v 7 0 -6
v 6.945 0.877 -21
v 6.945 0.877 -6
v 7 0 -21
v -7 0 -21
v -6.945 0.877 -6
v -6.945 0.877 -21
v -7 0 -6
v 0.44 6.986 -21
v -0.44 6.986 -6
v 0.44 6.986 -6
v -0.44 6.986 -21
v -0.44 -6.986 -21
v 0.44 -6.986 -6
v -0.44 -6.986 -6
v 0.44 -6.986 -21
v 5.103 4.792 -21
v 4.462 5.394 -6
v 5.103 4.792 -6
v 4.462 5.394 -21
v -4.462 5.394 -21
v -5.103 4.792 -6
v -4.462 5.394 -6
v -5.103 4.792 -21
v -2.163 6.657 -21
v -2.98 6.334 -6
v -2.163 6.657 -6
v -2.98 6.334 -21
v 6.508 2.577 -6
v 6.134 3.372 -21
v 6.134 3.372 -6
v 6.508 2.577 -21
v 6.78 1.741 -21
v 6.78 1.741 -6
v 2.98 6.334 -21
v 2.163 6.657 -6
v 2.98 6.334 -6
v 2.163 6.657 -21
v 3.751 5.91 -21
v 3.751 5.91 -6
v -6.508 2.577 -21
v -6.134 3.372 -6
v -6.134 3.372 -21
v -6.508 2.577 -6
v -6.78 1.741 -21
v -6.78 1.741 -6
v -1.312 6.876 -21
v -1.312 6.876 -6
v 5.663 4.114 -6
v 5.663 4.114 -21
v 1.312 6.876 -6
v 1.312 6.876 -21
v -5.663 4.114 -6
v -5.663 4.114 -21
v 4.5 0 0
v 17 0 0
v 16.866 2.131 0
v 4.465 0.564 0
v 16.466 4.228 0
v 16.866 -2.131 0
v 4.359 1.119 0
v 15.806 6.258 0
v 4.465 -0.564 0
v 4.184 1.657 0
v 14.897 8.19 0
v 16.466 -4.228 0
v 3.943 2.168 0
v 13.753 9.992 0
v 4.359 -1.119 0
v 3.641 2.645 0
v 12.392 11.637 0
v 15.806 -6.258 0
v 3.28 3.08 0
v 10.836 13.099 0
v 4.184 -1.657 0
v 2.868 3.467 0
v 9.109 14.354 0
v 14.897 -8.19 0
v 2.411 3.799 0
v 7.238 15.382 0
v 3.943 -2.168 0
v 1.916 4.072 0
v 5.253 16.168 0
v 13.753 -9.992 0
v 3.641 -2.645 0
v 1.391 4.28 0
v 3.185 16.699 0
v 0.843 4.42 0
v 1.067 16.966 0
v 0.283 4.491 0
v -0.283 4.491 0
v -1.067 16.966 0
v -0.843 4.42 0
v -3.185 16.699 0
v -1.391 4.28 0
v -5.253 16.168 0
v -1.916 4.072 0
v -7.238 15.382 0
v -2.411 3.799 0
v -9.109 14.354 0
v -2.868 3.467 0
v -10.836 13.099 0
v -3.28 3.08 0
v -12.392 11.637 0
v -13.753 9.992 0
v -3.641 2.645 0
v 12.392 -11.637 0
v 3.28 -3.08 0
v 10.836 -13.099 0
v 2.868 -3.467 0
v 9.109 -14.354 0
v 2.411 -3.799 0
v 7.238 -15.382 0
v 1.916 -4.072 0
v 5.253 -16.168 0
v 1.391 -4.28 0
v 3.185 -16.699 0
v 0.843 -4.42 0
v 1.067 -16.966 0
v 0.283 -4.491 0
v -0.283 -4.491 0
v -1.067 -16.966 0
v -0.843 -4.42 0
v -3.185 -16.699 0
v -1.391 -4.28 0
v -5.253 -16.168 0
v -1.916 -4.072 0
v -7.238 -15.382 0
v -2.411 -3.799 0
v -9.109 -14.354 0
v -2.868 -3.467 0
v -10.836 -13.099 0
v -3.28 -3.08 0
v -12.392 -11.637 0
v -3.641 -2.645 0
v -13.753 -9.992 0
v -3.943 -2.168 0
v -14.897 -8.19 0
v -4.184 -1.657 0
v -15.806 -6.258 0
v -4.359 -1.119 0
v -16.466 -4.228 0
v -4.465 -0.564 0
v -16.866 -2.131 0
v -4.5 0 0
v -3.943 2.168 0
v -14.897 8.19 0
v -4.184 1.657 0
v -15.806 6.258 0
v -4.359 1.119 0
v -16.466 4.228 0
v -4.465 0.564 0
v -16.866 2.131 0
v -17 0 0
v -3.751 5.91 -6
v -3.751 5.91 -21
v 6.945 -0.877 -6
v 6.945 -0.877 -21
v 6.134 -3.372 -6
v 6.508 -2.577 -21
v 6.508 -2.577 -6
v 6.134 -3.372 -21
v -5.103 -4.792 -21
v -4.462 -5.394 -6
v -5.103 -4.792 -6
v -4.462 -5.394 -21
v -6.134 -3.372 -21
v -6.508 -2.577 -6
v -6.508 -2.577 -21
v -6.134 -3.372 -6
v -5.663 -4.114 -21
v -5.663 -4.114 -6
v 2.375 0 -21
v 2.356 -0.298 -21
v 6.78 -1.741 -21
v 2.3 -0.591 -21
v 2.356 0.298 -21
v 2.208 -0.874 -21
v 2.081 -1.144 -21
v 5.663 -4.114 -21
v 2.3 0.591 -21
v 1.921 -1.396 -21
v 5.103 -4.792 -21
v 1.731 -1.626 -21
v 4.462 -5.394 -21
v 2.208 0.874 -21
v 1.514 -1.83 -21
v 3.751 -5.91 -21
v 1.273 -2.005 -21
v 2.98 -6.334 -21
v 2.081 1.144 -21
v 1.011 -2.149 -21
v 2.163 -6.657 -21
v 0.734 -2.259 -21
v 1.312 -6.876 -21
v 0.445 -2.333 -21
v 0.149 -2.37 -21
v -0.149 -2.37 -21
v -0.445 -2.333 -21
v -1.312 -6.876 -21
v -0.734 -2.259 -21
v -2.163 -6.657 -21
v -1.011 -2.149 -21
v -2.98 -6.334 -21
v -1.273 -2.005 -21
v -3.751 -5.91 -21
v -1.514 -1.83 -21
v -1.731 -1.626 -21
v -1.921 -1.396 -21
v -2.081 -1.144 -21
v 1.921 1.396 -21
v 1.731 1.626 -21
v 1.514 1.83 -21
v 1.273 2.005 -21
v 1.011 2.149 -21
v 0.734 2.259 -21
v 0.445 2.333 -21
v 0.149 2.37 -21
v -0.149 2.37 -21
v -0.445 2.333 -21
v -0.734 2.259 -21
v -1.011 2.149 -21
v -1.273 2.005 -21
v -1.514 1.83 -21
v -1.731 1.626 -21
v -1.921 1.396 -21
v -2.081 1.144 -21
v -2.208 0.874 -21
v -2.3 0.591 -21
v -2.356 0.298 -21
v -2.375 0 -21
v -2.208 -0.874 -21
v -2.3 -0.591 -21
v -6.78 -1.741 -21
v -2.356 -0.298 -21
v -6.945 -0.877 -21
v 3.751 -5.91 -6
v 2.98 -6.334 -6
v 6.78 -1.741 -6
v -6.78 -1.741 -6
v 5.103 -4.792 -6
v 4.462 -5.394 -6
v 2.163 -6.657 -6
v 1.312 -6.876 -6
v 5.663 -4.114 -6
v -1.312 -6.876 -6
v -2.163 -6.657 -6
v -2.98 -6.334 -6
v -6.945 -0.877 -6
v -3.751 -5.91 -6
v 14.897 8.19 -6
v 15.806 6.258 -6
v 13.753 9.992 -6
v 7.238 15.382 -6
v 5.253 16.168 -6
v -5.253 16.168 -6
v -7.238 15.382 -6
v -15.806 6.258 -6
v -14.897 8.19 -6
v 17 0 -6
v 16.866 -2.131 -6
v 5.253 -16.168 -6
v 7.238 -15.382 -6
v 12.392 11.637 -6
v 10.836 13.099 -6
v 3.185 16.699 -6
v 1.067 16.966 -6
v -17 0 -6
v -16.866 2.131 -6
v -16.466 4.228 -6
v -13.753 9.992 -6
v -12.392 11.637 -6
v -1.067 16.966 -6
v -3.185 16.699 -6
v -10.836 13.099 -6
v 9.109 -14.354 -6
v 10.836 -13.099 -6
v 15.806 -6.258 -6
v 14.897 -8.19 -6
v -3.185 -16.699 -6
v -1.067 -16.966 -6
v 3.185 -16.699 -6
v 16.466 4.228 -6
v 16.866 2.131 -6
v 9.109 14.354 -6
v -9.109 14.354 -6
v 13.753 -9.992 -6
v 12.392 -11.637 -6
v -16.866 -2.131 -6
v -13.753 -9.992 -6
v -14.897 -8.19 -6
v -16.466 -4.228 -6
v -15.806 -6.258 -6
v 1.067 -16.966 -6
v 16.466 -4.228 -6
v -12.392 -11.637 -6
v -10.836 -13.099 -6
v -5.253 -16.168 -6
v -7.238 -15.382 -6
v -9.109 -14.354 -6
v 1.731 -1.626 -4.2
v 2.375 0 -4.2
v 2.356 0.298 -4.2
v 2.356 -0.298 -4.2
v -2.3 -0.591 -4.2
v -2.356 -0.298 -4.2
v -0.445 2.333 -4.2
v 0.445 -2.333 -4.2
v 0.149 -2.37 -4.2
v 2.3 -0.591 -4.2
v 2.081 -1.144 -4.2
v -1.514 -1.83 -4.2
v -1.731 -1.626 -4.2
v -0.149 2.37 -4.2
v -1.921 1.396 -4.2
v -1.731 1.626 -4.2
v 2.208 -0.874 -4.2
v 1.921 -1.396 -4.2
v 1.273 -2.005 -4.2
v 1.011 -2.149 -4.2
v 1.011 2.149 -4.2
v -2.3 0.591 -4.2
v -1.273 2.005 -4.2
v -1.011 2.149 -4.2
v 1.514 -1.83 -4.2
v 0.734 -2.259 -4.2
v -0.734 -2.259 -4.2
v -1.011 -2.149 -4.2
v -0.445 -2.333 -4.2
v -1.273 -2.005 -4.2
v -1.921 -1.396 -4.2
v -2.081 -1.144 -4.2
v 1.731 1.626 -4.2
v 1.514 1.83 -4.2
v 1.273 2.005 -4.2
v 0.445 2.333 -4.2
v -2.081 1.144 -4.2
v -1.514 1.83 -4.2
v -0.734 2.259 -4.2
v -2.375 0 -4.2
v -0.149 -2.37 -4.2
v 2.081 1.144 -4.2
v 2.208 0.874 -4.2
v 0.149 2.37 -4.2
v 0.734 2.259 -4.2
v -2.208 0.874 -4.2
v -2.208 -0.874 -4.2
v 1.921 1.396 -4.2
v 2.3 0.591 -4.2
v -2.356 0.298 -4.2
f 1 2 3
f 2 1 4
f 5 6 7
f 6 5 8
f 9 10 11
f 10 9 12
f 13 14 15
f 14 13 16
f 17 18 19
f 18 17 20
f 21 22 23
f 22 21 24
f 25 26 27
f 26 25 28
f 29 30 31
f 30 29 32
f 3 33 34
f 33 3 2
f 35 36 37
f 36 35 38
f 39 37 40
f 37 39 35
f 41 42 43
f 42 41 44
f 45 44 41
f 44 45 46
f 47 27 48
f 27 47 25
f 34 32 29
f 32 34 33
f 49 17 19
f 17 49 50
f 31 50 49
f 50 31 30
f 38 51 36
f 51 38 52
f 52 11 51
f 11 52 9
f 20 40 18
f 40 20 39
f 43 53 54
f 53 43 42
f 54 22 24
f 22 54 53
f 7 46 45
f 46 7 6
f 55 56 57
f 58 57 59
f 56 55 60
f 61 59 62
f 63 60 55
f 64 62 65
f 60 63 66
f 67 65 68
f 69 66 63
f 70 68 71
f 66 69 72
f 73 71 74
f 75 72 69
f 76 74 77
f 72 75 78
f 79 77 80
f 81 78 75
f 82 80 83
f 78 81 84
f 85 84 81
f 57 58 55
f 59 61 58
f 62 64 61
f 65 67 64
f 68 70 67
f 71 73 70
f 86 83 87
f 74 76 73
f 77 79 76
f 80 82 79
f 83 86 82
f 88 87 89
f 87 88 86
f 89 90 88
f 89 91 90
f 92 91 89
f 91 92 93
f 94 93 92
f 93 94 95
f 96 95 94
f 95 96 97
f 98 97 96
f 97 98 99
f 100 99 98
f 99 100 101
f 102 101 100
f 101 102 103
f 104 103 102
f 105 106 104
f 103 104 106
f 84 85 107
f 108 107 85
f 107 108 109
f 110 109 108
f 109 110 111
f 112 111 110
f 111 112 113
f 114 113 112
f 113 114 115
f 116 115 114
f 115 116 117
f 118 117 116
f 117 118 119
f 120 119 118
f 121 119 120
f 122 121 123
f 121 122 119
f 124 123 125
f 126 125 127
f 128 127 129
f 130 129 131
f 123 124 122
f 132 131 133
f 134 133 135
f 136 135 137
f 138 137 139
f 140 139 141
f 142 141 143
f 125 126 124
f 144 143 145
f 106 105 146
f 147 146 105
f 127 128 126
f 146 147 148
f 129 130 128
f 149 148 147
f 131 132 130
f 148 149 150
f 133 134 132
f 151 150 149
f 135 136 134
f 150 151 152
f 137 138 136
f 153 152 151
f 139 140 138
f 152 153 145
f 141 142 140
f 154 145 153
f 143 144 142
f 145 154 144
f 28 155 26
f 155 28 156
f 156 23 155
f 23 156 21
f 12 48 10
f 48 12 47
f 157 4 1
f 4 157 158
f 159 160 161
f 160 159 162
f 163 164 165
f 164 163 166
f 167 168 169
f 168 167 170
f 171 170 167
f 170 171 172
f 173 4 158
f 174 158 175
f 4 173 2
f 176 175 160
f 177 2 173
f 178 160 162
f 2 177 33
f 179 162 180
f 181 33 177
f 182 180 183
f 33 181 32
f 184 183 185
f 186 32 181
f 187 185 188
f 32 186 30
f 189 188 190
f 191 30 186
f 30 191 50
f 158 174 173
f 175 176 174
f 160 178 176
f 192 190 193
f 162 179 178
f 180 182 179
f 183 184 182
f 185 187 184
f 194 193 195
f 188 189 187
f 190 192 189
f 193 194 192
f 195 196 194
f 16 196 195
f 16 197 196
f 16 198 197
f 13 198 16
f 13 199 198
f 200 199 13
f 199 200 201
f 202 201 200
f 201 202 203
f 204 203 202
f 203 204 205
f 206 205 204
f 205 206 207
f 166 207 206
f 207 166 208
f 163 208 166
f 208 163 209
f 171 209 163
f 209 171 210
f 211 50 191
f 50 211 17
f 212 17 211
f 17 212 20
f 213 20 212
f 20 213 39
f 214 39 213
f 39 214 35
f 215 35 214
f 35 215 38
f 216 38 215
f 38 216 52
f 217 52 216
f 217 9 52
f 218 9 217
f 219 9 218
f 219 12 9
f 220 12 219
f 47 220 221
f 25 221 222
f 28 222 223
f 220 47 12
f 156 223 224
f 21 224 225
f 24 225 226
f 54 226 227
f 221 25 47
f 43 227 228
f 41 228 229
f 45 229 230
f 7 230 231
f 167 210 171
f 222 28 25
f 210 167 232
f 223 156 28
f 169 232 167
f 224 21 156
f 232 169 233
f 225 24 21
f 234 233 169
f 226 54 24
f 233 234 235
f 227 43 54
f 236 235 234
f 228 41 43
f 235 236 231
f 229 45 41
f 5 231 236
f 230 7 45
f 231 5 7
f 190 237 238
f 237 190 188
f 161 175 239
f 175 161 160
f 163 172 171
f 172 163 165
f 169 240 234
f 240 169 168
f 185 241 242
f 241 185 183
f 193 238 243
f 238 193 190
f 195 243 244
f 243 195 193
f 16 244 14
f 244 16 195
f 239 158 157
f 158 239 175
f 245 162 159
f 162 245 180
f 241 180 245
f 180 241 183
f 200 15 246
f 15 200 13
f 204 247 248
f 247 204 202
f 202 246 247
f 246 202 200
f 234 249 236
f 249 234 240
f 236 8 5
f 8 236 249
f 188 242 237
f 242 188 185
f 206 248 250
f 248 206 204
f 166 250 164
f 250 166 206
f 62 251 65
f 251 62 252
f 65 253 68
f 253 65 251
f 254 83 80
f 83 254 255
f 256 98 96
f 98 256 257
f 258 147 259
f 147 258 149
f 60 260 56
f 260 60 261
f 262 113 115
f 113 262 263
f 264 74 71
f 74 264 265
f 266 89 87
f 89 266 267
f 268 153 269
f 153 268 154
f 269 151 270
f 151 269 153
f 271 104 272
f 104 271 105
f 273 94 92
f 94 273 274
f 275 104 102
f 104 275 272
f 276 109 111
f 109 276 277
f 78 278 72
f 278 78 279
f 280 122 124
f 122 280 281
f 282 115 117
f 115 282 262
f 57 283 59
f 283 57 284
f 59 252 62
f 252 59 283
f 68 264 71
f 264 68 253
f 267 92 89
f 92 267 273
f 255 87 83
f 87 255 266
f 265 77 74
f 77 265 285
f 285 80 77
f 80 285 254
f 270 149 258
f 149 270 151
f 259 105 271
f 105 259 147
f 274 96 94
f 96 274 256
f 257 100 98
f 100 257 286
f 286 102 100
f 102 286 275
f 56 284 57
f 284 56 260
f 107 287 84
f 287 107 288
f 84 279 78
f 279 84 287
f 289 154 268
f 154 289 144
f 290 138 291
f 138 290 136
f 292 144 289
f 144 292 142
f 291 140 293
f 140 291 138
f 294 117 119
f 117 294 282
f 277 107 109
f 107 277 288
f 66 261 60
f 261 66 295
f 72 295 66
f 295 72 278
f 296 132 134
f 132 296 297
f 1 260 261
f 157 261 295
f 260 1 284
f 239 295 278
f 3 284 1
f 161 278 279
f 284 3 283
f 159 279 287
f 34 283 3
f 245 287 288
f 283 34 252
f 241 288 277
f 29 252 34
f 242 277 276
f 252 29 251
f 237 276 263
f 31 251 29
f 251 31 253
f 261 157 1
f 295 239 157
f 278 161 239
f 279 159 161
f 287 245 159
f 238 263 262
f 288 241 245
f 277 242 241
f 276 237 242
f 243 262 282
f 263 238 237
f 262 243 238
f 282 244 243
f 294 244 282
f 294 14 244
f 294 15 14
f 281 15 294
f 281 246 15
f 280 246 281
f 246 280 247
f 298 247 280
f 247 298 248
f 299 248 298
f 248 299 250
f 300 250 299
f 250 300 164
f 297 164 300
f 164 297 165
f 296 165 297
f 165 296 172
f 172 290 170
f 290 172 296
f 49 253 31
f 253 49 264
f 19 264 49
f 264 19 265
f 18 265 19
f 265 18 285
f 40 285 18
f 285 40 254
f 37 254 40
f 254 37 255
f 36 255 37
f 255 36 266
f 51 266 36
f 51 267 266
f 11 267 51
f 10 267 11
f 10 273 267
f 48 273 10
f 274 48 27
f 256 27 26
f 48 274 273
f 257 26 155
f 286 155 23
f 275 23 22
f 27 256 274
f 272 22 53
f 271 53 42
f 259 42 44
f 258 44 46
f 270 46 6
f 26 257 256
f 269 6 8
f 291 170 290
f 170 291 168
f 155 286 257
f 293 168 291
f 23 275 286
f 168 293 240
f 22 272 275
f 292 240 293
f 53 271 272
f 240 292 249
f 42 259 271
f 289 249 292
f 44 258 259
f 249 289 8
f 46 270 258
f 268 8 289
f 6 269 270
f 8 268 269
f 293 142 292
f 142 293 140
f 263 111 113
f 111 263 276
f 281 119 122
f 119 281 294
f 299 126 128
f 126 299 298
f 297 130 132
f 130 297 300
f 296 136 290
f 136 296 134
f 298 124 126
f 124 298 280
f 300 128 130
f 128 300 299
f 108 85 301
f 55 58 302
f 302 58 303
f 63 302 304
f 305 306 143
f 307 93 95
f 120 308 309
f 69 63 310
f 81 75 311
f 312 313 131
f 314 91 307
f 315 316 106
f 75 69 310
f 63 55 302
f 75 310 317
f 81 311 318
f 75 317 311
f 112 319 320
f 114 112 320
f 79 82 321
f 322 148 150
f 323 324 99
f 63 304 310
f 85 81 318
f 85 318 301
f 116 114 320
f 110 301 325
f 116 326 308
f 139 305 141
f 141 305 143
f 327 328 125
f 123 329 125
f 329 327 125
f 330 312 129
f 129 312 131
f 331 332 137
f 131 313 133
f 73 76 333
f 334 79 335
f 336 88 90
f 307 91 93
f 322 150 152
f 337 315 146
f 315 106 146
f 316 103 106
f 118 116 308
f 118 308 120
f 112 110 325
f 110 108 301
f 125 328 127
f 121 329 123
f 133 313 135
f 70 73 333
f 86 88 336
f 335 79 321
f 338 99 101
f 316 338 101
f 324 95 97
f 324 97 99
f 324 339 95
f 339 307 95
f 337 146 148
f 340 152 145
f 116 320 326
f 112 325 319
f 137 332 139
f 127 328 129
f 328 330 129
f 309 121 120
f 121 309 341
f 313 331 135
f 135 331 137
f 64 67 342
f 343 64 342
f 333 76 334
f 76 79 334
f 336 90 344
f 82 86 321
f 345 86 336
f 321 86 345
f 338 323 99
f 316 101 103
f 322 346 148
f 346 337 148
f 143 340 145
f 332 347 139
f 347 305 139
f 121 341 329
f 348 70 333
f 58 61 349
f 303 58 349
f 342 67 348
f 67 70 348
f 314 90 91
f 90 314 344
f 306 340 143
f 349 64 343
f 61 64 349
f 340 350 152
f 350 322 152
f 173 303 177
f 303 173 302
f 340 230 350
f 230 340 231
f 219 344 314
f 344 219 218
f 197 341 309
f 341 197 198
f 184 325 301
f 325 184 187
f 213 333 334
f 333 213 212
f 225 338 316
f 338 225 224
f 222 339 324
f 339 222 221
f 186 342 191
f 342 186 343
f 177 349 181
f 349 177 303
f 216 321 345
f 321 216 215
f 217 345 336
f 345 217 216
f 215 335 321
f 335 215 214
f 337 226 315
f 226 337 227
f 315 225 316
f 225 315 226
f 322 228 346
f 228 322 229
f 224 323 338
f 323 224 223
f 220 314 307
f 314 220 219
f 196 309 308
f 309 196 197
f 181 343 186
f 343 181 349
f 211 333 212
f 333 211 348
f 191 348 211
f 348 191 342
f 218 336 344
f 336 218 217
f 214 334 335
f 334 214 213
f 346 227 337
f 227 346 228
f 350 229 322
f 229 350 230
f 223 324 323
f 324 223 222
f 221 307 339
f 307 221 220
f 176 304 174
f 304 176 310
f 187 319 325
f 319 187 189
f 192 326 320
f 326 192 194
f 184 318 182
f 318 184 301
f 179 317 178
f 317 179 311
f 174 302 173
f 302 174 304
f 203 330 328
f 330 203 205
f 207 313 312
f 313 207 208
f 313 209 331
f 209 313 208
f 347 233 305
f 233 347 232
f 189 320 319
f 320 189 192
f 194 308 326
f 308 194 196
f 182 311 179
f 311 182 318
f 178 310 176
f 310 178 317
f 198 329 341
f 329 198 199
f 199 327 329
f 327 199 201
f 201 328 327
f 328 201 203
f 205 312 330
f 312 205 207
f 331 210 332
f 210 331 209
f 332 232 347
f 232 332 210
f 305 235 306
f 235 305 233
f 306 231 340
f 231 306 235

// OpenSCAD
$fn = 50;


difference() {
	union() {
		translate(v = [0, 0, -21.0000000000]) {
			cylinder(h = 21, r = 7.0000000000);
		}
		translate(v = [0, 0, -6.0000000000]) {
			cylinder(h = 6, r = 17.0000000000);
		}
	}
	union() {
		translate(v = [0, 0, 0]) {
			rotate(a = [0, 0, 0]) {
				difference() {
					union() {
						#translate(v = [0, 0, -21.0000000000]) {
							cylinder(h = 21, r = 2.2500000000);
						}
						#translate(v = [0, 0, -4.2000000000]) {
							cylinder(h = 4.2000000000, r1 = 2.3750000000, r2 = 4.5000000000);
						}
						#translate(v = [0, 0, -21.0000000000]) {
							cylinder(h = 21, r = 2.3750000000);
						}
						#translate(v = [0, 0, -21.0000000000]) {
							cylinder(h = 21, r = 2.2500000000);
						}
					}
					union();
				}
			}
		}
	}
}
